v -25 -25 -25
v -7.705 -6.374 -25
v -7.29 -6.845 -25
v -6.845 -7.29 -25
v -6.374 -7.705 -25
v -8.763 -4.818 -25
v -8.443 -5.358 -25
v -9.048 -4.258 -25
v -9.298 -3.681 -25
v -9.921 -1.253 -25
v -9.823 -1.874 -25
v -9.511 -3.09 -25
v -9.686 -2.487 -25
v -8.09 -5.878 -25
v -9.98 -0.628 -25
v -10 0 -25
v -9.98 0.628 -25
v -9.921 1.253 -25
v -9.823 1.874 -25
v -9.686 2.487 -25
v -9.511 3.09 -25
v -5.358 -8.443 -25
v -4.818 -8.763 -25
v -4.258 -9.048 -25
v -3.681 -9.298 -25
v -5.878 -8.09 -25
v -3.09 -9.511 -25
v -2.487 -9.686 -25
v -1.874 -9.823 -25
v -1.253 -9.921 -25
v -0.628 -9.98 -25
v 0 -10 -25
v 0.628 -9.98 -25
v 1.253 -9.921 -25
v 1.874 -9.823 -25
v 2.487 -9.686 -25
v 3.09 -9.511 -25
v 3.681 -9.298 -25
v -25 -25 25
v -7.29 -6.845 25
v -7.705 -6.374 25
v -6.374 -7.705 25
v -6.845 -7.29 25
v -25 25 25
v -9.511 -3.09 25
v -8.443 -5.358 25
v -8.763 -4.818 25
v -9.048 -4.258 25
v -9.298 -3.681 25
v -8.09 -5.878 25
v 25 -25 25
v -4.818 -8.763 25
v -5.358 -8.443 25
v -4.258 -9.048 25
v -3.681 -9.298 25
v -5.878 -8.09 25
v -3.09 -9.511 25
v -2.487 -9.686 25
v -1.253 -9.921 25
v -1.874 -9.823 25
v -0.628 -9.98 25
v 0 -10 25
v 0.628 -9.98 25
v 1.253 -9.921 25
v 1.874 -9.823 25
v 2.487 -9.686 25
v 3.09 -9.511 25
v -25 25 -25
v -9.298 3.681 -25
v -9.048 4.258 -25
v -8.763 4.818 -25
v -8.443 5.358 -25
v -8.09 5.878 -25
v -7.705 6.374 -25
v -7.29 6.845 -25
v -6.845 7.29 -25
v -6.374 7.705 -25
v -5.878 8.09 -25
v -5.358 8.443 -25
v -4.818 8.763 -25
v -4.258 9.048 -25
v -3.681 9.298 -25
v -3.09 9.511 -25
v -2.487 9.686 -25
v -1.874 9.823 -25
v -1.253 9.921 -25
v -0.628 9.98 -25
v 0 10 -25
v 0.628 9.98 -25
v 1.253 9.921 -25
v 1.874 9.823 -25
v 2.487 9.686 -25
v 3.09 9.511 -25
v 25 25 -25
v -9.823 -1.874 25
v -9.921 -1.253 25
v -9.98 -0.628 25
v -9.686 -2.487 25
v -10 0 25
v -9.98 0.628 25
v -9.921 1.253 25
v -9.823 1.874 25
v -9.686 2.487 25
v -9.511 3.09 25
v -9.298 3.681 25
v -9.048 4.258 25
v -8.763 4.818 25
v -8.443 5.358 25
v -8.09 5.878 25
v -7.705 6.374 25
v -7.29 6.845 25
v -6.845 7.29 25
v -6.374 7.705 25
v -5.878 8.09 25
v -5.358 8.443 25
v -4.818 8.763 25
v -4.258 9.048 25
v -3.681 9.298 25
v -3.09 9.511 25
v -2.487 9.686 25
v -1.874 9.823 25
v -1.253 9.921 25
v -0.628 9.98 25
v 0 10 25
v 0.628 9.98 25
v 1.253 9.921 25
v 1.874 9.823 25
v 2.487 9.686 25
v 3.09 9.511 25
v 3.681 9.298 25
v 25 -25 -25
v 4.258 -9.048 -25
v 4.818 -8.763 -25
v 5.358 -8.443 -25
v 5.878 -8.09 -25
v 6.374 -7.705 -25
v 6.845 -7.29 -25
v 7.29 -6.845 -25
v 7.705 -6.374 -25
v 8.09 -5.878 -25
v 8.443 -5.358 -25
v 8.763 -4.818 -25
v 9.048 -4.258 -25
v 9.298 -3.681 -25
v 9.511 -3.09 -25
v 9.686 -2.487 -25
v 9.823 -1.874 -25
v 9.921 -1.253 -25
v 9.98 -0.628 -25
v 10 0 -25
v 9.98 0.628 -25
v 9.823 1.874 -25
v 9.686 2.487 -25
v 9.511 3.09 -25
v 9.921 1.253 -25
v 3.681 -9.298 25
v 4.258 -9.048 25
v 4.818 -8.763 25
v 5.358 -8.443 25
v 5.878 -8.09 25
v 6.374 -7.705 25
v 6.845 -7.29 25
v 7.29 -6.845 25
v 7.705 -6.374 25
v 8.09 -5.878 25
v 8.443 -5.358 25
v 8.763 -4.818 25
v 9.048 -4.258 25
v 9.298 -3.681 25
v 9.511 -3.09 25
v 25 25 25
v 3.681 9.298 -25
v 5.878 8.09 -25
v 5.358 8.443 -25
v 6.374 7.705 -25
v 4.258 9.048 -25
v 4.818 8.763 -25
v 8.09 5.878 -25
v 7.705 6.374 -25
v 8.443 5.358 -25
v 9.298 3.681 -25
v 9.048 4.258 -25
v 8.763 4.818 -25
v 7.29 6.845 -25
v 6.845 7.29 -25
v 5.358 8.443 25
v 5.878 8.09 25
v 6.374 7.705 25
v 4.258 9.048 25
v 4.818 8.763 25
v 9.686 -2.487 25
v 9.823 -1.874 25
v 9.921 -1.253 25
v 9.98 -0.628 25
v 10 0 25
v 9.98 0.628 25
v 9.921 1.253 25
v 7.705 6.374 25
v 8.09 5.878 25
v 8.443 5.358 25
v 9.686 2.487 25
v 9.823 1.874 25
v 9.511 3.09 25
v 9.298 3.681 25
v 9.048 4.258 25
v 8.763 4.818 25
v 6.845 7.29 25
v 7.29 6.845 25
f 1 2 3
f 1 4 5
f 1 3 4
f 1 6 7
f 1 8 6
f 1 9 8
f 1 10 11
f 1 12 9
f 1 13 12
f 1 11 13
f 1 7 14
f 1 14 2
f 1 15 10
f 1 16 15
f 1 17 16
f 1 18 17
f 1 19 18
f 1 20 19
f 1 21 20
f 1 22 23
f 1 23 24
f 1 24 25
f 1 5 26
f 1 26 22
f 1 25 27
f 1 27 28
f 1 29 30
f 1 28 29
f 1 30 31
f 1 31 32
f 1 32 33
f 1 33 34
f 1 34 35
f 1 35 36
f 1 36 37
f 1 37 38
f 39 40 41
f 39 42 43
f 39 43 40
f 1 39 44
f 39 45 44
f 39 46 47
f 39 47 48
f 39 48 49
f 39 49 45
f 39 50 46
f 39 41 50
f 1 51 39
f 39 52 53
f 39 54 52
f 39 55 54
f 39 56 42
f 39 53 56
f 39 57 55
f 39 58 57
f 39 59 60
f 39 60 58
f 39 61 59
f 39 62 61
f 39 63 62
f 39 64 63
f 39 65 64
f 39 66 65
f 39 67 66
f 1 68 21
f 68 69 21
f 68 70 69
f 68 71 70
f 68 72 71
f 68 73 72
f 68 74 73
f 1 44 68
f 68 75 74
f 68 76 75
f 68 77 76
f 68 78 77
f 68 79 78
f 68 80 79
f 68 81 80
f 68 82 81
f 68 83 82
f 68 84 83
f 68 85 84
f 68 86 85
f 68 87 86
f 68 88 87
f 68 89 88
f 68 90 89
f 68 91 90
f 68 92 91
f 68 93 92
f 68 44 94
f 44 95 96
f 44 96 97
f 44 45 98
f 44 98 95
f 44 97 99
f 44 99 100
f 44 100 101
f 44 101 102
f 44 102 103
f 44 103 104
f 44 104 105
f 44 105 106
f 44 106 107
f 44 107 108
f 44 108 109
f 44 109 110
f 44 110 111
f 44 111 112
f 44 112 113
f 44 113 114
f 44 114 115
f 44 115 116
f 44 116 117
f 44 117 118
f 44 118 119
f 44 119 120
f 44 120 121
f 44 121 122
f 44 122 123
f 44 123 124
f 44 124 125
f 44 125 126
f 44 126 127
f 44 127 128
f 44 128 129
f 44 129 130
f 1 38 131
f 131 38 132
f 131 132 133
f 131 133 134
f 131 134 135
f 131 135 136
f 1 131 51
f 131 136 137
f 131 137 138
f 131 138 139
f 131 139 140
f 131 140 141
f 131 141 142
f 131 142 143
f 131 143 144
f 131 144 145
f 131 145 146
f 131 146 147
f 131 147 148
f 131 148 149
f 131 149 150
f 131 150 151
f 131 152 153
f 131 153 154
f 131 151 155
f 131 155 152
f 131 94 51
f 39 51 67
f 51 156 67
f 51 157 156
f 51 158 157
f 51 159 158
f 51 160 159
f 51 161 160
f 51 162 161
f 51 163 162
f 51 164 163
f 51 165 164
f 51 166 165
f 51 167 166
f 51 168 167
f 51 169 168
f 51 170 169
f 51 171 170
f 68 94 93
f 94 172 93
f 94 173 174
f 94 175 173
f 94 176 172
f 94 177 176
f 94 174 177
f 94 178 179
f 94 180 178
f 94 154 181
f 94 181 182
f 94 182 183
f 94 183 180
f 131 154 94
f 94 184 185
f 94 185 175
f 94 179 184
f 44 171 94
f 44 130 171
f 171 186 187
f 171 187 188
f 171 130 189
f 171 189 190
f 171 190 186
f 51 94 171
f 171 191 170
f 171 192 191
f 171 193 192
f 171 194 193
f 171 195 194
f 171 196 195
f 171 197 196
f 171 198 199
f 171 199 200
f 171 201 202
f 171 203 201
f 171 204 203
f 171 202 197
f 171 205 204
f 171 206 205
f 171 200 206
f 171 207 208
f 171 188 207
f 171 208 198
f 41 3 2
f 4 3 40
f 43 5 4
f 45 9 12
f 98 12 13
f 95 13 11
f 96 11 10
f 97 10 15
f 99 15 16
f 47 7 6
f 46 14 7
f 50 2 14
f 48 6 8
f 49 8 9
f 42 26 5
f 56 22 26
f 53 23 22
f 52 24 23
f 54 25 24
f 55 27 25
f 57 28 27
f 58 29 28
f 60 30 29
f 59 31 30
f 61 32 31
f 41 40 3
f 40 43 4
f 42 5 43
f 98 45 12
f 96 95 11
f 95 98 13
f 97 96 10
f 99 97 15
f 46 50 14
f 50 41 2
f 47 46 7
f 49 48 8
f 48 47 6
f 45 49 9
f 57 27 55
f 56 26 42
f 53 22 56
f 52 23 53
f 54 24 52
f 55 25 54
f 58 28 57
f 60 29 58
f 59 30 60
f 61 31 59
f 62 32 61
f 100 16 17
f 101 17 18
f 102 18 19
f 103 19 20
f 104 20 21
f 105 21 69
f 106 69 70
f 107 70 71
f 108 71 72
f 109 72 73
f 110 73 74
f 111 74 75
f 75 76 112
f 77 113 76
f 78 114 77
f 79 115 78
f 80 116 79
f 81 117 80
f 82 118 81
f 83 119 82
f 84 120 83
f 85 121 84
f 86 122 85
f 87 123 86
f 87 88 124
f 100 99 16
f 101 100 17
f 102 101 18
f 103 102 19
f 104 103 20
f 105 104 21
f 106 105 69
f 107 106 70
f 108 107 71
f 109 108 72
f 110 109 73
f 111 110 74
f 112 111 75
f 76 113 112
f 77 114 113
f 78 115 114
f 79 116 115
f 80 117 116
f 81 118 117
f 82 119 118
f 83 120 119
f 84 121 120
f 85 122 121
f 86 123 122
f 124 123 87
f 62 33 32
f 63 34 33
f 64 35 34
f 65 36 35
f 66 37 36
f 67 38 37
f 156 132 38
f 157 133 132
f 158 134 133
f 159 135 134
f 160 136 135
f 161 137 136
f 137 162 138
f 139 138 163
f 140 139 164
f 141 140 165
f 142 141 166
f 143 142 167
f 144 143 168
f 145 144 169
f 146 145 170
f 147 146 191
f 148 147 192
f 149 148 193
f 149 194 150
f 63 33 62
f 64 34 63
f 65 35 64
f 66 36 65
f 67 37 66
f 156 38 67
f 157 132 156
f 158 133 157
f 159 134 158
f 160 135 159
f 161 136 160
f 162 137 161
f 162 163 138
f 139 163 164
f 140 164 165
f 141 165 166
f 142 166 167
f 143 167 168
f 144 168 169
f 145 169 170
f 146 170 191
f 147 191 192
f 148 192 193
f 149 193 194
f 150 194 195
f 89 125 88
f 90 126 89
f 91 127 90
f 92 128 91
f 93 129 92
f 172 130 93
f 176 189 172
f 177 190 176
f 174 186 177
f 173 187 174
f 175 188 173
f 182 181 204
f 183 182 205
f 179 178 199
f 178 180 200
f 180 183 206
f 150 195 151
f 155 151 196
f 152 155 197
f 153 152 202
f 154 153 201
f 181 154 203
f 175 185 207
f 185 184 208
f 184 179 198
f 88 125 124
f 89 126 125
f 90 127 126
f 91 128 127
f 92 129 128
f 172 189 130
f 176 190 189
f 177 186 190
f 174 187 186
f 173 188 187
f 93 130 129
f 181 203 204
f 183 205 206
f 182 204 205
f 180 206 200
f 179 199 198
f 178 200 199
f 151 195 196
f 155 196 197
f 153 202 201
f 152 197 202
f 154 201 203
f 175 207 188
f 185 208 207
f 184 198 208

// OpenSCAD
difference() {
    cube([50, 50, 50], center = true);
    cylinder(d = 20, h = 60, center = true, $fn = 100);
}
